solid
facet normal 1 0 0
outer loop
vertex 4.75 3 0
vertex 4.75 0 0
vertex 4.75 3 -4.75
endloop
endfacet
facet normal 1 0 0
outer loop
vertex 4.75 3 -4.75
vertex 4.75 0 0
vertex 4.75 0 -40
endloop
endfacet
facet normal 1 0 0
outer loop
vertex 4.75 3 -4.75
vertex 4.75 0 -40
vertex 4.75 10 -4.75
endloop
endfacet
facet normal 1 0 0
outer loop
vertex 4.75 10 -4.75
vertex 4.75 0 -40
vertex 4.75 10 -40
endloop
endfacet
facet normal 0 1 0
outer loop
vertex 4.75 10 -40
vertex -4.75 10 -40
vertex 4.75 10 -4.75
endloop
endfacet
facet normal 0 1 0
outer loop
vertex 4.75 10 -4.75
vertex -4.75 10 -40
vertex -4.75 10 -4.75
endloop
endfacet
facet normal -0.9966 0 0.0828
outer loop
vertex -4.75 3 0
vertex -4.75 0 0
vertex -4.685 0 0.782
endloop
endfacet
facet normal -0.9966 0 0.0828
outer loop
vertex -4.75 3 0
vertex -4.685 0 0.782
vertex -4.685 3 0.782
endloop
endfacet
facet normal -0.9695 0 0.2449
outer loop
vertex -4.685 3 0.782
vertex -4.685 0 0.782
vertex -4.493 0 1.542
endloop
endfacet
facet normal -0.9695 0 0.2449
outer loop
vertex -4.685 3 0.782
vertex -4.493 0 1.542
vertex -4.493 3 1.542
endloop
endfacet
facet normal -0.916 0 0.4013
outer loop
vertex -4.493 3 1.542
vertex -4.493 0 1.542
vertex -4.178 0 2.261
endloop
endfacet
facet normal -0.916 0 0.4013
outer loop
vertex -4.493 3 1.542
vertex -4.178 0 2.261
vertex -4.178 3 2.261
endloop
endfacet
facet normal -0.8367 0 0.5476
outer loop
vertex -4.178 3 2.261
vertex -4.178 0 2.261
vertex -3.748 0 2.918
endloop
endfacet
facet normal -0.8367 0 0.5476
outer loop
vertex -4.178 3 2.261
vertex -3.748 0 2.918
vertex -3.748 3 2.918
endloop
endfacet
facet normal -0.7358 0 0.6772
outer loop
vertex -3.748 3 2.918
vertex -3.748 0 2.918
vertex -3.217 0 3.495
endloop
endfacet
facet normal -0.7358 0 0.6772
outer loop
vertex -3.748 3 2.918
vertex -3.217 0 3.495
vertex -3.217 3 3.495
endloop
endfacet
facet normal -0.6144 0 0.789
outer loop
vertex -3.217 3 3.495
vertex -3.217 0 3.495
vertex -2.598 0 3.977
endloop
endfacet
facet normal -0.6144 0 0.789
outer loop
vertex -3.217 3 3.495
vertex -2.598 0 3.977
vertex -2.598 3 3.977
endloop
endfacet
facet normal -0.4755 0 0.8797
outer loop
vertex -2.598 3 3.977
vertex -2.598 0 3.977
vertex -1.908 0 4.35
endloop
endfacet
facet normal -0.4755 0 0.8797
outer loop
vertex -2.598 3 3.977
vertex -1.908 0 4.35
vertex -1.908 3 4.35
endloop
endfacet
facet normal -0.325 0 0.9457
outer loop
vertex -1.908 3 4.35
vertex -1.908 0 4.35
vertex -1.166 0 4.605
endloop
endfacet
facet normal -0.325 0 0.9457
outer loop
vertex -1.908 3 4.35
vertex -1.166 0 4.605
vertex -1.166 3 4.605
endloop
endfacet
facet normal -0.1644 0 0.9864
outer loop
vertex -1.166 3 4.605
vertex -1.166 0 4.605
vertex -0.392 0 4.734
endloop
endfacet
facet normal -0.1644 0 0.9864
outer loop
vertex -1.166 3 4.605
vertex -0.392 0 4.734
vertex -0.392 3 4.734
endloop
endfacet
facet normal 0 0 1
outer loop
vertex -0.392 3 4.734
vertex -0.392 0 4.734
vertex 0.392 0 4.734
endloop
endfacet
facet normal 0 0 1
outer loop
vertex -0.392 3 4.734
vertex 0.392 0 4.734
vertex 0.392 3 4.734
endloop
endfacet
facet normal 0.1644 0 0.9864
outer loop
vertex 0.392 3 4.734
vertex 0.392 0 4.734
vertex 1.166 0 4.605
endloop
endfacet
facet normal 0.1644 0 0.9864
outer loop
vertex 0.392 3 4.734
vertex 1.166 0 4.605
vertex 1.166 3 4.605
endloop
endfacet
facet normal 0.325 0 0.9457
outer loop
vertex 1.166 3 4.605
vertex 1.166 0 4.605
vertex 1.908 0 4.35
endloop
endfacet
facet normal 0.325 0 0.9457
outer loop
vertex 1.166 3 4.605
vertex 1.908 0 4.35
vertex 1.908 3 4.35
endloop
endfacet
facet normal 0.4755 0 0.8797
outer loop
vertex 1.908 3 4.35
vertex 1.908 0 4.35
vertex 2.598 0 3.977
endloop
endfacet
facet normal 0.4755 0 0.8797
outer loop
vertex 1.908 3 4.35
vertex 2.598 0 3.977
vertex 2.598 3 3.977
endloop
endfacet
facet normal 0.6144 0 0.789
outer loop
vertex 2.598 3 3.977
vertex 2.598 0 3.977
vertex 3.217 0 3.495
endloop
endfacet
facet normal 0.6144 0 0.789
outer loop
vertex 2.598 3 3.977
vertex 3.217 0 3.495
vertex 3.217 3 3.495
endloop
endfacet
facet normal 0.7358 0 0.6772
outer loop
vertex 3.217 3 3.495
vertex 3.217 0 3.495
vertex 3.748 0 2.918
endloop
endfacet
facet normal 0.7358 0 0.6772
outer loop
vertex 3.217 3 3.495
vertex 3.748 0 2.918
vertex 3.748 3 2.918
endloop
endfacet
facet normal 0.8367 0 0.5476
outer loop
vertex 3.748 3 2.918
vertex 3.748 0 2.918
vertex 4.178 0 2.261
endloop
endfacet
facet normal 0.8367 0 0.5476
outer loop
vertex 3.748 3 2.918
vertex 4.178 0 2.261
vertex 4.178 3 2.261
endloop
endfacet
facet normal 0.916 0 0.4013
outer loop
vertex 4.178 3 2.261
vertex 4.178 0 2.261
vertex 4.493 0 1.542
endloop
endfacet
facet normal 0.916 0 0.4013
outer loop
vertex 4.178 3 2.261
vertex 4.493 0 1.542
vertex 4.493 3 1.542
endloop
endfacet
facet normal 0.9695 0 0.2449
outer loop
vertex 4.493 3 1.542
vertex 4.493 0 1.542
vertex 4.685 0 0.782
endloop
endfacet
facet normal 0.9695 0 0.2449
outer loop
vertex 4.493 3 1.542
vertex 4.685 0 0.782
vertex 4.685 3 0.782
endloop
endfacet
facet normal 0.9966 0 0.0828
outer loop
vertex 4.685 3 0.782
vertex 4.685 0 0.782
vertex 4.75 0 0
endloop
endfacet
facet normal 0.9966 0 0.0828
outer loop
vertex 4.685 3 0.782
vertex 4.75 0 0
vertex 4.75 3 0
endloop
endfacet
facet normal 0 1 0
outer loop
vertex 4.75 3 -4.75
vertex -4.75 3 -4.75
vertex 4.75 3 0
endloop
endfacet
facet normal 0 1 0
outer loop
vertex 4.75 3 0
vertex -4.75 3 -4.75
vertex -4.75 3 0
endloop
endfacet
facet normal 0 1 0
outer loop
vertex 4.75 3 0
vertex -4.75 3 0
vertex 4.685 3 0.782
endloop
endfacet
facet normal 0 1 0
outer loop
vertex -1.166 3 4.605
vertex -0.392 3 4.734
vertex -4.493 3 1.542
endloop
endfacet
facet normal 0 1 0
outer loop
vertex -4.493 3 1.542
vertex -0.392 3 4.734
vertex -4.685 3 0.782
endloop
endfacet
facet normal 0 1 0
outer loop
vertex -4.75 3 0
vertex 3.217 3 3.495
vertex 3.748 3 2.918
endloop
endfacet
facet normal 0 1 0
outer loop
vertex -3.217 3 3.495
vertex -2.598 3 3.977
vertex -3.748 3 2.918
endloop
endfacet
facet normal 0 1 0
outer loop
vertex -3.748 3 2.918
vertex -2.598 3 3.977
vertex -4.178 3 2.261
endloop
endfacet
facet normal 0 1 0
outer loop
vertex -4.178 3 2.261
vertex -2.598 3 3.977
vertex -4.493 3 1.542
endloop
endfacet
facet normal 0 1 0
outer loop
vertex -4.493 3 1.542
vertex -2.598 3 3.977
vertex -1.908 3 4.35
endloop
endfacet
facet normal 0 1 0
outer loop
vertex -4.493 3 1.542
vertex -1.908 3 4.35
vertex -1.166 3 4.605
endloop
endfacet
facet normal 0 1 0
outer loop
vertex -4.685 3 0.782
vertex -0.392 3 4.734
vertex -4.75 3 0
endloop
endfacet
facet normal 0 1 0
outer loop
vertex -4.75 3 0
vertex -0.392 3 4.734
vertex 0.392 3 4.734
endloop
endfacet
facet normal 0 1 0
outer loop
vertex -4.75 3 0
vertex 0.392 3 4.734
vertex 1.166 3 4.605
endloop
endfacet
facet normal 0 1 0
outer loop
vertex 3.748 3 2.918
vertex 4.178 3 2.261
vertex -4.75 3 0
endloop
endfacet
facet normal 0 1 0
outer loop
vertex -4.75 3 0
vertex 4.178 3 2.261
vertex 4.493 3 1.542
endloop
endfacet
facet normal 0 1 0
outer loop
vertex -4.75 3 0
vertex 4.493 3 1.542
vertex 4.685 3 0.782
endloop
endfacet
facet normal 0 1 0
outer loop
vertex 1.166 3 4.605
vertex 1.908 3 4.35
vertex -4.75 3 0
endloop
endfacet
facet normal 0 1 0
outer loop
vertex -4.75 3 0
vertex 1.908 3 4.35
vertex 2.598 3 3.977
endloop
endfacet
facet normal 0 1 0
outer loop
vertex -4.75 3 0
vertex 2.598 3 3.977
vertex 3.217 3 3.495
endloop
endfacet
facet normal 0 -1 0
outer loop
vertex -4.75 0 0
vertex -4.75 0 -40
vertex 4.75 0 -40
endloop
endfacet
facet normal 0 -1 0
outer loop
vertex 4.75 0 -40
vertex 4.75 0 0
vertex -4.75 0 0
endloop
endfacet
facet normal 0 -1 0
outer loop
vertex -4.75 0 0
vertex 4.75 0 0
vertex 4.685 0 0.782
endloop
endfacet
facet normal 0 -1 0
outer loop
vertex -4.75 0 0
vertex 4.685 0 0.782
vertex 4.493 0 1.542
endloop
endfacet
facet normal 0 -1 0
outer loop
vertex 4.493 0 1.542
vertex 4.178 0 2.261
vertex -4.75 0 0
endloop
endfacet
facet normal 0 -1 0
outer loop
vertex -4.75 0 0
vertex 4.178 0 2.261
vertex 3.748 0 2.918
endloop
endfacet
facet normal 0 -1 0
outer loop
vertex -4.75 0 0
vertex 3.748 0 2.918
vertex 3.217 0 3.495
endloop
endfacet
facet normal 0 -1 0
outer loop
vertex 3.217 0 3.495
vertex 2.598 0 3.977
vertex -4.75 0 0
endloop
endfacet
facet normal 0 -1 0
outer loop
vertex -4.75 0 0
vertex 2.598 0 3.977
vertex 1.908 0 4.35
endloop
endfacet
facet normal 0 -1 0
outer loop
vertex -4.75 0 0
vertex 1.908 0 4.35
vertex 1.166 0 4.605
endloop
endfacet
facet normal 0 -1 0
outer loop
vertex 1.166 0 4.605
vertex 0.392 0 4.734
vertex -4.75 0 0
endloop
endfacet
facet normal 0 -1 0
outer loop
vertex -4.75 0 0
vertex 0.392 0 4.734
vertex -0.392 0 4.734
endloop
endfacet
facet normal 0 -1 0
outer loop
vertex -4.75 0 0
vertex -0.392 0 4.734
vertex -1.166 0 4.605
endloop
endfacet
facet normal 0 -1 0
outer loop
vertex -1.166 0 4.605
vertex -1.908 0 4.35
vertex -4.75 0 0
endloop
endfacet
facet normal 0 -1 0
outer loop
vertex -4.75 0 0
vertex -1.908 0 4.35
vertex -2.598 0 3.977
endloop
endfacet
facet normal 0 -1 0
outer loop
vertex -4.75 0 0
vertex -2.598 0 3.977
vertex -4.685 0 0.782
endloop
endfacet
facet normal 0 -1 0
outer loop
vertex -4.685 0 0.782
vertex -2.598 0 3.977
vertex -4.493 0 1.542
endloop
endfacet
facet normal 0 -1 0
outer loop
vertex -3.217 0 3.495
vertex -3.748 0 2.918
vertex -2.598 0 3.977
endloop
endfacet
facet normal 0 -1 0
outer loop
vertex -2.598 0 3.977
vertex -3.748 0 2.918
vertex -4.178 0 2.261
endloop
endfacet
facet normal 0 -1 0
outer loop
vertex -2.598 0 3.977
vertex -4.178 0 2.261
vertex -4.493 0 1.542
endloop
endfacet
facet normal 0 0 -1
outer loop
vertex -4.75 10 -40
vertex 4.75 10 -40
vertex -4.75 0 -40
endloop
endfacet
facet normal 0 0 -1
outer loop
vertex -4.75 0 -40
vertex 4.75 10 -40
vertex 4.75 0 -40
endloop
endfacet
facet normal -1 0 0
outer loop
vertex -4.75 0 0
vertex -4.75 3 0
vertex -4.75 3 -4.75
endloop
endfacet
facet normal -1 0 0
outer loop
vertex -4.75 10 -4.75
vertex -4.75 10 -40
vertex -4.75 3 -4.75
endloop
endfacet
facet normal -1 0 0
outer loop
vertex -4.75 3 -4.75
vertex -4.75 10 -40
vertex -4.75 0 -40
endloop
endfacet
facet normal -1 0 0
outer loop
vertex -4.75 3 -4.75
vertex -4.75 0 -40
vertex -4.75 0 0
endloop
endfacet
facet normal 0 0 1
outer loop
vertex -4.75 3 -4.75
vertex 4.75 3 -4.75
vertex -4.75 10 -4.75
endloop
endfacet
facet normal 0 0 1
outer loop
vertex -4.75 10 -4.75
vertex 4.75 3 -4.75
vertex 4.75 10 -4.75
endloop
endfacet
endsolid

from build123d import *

# Parameters (mm, degrees)
SKETCH1_R           = 4.75
BOSS_EXTRUDE1_DEPTH = 3
BOSS_EXTRUDE2_DEPTH = 10
CUT_EXTRUDE1_DEPTH  = 7


with BuildPart() as part:
    # Sketch1 → Boss-Extrude1 (new body)
    with BuildSketch(Plane(origin=(0, 0, 0), x_dir=(1, 0, 0), z_dir=(0, 1, 0))):
        Circle(SKETCH1_R)
    extrude(amount=BOSS_EXTRUDE1_DEPTH)

    # Sketch2 → Boss-Extrude2 (add)
    with BuildSketch(Plane(origin=(0, 0, 0), x_dir=(1, 0, 0), z_dir=(0, 1, 0))):
        with BuildLine():
            Line((-4.75, 0), (-4.75, 40))
            Line((-4.75, 40), (4.75, 40))
            Line((4.75, 40), (4.75, 0))
            ThreePointArc((4.75, 0), (0, 4.75), (-4.75, 0))
        make_face()
    extrude(amount=BOSS_EXTRUDE2_DEPTH)

    # Sketch3 → Cut-Extrude1 (cut)
    with BuildSketch(Plane(origin=(0, 10, 0), x_dir=(1, 0, 0), z_dir=(0, 1, 0))):
        with BuildLine():
            ThreePointArc((-4.75, 0), (-3.358757211, 3.358757211), (0, 4.75))
            Line((0, 4.75), (-4.75, 4.75))
            Line((-4.75, 4.75), (-4.75, 0))
        make_face()
        with BuildLine():
            Line((4.75, 4.75), (0, 4.75))
            ThreePointArc((0, 4.75), (3.358757211, 3.358757211), (4.75, 0))
            Line((4.75, 0), (4.75, 4.75))
        make_face()
    extrude(amount=-CUT_EXTRUDE1_DEPTH, mode=Mode.SUBTRACT)


solid = part.part
